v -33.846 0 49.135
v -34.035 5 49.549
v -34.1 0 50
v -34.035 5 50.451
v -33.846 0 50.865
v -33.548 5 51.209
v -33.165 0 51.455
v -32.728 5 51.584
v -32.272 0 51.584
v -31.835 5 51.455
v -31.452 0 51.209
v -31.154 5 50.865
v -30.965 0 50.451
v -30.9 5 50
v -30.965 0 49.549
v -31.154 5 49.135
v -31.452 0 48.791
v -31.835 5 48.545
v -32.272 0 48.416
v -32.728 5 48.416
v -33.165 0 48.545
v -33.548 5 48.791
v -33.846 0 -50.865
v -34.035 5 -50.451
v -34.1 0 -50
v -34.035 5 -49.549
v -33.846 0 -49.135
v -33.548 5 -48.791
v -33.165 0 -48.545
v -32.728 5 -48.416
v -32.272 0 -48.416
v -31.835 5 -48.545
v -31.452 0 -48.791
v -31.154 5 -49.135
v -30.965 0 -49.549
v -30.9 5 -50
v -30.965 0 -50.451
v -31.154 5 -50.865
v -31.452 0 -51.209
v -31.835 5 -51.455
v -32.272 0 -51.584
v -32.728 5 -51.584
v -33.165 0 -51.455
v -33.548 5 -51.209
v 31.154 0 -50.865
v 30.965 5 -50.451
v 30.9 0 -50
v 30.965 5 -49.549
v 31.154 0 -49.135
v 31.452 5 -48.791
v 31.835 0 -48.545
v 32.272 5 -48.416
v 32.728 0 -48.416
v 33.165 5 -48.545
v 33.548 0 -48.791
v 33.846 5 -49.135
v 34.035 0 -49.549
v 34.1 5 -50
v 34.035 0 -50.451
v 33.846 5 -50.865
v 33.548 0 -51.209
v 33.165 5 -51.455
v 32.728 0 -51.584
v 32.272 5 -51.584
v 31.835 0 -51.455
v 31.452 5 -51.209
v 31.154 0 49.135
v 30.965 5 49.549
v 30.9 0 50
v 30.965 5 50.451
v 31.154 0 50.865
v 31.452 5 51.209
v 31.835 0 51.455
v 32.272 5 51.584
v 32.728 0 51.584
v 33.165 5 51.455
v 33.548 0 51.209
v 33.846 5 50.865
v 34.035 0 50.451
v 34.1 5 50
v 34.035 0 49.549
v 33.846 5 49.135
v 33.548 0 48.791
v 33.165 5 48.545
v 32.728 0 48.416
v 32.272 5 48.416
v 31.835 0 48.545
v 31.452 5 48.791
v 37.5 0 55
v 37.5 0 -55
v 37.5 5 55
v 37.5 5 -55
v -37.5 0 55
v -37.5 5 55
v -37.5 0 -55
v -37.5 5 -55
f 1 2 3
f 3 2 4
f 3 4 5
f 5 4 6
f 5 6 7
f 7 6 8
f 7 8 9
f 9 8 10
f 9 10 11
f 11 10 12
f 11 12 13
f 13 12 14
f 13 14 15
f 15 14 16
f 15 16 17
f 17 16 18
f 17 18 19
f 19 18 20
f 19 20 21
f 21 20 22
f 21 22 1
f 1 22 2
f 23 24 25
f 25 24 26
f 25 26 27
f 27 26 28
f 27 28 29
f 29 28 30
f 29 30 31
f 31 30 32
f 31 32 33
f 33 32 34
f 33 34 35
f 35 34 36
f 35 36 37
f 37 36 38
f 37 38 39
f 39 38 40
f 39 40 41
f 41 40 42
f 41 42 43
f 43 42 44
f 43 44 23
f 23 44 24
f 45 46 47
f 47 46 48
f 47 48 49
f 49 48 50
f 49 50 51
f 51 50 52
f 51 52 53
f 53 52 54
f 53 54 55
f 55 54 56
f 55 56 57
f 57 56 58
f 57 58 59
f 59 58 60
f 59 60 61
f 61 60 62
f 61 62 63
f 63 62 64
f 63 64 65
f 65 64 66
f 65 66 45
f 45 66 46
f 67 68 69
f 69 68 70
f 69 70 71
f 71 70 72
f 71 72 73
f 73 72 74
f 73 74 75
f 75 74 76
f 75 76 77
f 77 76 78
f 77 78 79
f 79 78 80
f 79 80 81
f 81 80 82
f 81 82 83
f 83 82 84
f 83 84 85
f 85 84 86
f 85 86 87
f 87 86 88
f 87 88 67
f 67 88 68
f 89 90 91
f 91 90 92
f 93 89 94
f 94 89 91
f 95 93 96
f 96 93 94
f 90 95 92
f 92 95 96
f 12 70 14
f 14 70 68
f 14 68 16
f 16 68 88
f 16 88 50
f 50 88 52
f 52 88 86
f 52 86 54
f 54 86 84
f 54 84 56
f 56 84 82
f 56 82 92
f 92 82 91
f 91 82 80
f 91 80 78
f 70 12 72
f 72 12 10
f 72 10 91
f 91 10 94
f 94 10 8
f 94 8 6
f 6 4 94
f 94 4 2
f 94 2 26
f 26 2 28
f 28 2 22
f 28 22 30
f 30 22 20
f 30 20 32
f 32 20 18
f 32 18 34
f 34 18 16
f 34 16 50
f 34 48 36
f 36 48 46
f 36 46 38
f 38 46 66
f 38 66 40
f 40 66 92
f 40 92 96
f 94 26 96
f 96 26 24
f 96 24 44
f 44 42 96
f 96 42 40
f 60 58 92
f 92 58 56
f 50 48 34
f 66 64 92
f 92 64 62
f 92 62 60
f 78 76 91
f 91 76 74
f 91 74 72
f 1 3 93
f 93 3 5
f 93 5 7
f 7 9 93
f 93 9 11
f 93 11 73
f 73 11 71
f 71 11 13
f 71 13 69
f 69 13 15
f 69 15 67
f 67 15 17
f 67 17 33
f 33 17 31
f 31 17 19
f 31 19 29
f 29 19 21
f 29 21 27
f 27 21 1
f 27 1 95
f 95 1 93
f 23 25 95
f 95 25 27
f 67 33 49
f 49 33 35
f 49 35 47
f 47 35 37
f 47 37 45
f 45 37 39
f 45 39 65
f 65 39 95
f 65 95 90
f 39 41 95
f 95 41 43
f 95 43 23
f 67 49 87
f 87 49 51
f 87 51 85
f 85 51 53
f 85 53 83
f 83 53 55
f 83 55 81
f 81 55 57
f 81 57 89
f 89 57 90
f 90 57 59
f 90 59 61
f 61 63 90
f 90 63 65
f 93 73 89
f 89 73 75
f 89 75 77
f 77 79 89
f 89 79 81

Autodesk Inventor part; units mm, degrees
ref_plane "YZ Plane" through (0, 0, 0) normal (1, 0, 0) x (0, 1, 0)
ref_plane "XZ Plane" through (0, 0, 0) normal (0, 1, 0) x (-1, 0, 0)
ref_plane "XY Plane" through (0, 0, 0) normal (0, 0, 1) x (1, 0, 0)
sketch "Sketch1" plane through (0, 0, 0) normal (0, 1, 0) x (-1, 0, 0)
  line L0 (-37.5, 55) -> (37.5, 55)
  line L1 (37.5, 55) -> (37.5, -55)
  line L2 (37.5, -55) -> (-37.5, -55)
  line L3 (-37.5, -55) -> (-37.5, 55)
  line L4 (-37.5, 55) -> (37.5, -55) construction
  line L5 (37.5, 55) -> (-37.5, -55) construction
  point P0 (0, 0)
  dimension "d0" = 75
  dimension "d1" = 110
extrude "Extrusion1" add sketch "Sketch1" along normal blind 5
sketch "Sketch2" plane through (0, 5, 0) normal (0, 1, 0) x (1, 0, 0)
  line L0 (37.5, -55) -> (37.5, 55) projected
  line L1 (-37.5, -55) -> (37.5, -55) projected
  line L2 (37.5, 55) -> (-37.5, 55) projected
  line L3 (-37.5, 55) -> (-37.5, -55) projected
  point P0 (0, 0)
  point P1 (32.5, -50)
  point P2 (32.5, 50)
  point P3 (-32.5, 50)
  point P4 (-32.5, -50)
  dimension "HS" = 5
  dimension "d12" = 5
  dimension "d13" = 5
  dimension "d14" = 5
hole "Hole1" at (32.5, 5, 50) at (32.5, 5, -50) at (-32.5, 5, -50) at (-32.5, 5, 50) direction (0, -1, 0) diameter 3.2 depth 6
equation "\"d12\" = HS"
equation "\"d13\" = HS"
equation "\"d14\" = HS"
properties part number "DAQ_HousingCover_V1"
